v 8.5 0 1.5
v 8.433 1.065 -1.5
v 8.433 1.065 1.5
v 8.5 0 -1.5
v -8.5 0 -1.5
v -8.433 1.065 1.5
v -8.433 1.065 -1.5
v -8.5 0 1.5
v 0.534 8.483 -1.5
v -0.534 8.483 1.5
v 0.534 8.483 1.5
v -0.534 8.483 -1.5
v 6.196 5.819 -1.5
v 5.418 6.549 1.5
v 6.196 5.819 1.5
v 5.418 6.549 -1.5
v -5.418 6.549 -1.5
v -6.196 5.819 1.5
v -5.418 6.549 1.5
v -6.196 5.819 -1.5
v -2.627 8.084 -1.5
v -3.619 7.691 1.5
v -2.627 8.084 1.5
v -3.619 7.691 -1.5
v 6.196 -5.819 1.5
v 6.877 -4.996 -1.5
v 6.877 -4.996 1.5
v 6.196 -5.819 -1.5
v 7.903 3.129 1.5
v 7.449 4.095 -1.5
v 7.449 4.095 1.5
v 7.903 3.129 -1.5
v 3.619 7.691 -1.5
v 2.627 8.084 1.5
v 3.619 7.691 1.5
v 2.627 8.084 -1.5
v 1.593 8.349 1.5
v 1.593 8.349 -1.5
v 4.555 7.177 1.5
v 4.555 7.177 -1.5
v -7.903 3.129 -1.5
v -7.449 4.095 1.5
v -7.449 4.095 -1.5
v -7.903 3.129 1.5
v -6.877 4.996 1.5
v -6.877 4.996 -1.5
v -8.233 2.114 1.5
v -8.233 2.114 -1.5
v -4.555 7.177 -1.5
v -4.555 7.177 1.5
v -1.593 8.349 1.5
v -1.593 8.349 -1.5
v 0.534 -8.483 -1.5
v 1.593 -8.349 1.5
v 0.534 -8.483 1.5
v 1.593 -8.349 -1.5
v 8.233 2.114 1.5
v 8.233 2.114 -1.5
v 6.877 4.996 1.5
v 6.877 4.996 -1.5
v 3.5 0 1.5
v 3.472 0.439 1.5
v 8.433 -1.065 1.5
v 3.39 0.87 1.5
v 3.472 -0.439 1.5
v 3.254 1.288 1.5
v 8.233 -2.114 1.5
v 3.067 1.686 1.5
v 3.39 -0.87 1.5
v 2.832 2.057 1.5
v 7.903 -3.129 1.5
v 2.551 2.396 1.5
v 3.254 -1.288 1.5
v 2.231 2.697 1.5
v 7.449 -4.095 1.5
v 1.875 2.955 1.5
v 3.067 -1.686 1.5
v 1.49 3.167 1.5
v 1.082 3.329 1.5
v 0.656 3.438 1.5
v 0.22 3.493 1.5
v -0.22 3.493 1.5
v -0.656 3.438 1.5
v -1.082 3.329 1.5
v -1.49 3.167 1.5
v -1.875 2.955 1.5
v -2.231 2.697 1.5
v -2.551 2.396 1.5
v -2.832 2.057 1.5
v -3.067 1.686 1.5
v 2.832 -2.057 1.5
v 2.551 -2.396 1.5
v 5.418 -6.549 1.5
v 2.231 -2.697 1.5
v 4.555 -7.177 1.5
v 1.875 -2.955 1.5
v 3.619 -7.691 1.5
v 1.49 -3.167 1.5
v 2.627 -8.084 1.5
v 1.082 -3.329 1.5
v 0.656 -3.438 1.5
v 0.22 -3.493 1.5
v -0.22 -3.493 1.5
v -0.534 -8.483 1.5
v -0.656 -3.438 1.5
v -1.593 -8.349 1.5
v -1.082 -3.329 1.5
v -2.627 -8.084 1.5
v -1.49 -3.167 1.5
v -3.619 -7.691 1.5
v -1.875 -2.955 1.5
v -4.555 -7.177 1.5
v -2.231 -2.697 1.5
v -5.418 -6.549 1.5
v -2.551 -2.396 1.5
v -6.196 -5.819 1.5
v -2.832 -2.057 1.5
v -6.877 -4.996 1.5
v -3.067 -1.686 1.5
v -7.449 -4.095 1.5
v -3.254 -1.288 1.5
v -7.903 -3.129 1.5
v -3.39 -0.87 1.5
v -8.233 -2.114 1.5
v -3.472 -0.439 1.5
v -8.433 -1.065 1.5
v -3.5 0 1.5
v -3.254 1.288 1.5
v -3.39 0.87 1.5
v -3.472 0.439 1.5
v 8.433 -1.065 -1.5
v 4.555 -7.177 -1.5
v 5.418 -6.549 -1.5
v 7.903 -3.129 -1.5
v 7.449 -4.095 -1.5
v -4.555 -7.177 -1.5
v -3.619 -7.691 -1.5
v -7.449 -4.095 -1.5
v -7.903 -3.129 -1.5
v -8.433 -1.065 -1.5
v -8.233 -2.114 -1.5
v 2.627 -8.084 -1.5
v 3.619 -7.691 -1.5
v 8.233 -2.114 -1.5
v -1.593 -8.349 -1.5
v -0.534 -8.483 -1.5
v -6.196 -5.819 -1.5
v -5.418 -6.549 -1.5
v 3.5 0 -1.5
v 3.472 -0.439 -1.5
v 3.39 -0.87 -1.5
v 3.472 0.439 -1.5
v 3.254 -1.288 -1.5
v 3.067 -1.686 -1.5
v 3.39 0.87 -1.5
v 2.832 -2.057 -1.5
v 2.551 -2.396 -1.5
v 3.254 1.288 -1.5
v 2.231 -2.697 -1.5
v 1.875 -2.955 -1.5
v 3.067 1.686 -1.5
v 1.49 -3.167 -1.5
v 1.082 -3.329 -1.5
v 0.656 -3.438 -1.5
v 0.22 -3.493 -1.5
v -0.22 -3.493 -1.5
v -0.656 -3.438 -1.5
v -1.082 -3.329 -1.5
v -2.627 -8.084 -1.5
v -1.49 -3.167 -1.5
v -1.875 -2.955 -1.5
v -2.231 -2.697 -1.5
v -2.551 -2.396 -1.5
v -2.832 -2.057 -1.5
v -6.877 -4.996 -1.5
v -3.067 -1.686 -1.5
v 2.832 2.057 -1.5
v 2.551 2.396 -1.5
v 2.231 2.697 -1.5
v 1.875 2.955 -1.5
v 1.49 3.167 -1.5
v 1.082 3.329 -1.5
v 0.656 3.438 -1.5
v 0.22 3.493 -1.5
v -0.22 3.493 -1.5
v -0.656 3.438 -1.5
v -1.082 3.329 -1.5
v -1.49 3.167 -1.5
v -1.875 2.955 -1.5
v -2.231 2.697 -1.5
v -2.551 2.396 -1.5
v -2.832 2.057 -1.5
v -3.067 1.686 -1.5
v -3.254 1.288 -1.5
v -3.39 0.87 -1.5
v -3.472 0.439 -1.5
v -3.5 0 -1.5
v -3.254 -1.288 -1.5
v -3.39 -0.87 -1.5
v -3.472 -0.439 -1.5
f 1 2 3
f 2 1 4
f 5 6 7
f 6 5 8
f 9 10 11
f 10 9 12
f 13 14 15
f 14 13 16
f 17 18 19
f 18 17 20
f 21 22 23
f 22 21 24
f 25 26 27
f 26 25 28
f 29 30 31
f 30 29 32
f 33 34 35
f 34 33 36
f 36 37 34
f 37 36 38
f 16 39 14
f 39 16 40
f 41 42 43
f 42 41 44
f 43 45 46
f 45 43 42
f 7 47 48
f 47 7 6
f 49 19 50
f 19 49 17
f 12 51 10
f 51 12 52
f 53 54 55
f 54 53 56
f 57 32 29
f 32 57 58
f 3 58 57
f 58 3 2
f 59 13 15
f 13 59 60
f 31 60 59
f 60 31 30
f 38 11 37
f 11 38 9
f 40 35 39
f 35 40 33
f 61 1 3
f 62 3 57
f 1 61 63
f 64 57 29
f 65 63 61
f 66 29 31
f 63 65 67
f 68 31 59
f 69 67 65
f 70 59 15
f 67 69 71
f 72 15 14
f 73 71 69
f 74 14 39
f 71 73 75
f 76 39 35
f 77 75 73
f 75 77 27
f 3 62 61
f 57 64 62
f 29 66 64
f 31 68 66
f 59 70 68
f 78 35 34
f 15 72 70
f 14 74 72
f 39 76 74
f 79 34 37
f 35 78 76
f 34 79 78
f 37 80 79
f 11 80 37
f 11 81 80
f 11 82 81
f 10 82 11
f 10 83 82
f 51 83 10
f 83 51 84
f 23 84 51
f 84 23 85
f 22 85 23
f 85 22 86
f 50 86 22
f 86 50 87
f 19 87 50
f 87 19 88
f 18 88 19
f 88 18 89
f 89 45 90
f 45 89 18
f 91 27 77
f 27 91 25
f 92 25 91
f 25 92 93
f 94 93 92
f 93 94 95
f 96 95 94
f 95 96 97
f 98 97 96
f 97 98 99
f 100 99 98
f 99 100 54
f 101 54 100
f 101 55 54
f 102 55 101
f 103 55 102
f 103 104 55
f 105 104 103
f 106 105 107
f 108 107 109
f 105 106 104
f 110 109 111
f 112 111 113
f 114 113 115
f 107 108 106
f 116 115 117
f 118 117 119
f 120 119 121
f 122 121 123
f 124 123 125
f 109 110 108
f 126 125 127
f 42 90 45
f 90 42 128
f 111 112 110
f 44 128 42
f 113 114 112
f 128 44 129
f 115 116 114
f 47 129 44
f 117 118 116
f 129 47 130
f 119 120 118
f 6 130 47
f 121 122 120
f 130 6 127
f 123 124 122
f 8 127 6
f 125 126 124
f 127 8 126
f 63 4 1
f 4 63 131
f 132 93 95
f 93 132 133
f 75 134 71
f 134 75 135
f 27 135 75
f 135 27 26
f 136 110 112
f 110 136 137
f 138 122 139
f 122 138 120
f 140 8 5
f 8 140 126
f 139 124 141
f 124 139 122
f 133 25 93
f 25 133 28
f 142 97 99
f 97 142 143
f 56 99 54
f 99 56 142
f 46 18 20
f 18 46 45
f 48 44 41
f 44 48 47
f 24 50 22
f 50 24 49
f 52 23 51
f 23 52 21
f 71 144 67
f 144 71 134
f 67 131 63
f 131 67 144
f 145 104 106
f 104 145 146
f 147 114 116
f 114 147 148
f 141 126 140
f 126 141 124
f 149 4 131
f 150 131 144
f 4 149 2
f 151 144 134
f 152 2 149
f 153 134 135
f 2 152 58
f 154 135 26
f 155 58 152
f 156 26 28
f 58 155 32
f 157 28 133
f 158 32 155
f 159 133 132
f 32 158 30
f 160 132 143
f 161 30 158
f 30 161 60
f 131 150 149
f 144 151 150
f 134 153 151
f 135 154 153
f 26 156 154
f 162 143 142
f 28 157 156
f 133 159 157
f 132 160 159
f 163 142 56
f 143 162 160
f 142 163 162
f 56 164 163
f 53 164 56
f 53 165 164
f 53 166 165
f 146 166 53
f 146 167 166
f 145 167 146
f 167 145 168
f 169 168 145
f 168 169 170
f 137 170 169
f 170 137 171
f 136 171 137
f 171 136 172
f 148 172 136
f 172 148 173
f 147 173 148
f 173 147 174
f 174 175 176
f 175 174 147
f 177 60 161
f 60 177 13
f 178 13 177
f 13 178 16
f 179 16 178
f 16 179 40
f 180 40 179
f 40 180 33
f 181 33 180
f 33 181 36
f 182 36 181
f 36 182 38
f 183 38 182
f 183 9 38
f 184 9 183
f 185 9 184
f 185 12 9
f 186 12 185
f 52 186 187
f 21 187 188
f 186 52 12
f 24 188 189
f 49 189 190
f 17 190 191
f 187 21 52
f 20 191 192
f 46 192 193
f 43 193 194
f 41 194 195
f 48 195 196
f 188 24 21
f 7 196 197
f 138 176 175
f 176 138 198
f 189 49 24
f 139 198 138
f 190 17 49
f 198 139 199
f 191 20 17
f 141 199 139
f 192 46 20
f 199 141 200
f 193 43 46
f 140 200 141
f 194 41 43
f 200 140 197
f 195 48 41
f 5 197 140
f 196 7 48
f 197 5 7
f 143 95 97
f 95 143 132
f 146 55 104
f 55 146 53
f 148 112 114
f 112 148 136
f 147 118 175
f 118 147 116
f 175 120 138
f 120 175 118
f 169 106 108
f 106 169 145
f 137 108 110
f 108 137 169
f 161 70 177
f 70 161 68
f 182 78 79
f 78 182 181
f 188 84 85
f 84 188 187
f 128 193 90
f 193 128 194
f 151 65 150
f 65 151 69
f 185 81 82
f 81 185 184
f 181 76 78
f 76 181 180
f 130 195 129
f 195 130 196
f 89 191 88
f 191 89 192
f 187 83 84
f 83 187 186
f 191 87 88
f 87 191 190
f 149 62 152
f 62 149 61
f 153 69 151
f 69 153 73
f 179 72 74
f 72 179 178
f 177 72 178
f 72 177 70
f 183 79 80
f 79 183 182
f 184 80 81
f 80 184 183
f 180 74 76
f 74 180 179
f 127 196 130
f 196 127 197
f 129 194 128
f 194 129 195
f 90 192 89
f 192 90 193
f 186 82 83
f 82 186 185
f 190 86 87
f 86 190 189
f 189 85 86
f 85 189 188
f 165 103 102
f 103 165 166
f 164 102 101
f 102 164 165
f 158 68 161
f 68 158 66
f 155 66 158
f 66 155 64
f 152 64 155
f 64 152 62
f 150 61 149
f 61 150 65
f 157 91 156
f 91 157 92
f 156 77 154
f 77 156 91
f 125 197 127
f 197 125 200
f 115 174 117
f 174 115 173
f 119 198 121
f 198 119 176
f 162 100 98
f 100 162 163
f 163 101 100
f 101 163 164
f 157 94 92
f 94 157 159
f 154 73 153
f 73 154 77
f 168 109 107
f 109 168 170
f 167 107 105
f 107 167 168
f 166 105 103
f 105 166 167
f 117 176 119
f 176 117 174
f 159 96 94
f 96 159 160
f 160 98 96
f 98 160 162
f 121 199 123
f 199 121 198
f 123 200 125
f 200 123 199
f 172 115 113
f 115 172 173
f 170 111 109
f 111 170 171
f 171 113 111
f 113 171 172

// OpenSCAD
$fn = 50;


difference() {
	union() {
		translate(v = [0, 0, -1.5000000000]) {
			cylinder(h = 3, r = 8.5000000000);
		}
	}
	union() {
		translate(v = [0, 0, -100.0000000000]) {
			cylinder(h = 200, r = 3.5000000000);
		}
	}
}
